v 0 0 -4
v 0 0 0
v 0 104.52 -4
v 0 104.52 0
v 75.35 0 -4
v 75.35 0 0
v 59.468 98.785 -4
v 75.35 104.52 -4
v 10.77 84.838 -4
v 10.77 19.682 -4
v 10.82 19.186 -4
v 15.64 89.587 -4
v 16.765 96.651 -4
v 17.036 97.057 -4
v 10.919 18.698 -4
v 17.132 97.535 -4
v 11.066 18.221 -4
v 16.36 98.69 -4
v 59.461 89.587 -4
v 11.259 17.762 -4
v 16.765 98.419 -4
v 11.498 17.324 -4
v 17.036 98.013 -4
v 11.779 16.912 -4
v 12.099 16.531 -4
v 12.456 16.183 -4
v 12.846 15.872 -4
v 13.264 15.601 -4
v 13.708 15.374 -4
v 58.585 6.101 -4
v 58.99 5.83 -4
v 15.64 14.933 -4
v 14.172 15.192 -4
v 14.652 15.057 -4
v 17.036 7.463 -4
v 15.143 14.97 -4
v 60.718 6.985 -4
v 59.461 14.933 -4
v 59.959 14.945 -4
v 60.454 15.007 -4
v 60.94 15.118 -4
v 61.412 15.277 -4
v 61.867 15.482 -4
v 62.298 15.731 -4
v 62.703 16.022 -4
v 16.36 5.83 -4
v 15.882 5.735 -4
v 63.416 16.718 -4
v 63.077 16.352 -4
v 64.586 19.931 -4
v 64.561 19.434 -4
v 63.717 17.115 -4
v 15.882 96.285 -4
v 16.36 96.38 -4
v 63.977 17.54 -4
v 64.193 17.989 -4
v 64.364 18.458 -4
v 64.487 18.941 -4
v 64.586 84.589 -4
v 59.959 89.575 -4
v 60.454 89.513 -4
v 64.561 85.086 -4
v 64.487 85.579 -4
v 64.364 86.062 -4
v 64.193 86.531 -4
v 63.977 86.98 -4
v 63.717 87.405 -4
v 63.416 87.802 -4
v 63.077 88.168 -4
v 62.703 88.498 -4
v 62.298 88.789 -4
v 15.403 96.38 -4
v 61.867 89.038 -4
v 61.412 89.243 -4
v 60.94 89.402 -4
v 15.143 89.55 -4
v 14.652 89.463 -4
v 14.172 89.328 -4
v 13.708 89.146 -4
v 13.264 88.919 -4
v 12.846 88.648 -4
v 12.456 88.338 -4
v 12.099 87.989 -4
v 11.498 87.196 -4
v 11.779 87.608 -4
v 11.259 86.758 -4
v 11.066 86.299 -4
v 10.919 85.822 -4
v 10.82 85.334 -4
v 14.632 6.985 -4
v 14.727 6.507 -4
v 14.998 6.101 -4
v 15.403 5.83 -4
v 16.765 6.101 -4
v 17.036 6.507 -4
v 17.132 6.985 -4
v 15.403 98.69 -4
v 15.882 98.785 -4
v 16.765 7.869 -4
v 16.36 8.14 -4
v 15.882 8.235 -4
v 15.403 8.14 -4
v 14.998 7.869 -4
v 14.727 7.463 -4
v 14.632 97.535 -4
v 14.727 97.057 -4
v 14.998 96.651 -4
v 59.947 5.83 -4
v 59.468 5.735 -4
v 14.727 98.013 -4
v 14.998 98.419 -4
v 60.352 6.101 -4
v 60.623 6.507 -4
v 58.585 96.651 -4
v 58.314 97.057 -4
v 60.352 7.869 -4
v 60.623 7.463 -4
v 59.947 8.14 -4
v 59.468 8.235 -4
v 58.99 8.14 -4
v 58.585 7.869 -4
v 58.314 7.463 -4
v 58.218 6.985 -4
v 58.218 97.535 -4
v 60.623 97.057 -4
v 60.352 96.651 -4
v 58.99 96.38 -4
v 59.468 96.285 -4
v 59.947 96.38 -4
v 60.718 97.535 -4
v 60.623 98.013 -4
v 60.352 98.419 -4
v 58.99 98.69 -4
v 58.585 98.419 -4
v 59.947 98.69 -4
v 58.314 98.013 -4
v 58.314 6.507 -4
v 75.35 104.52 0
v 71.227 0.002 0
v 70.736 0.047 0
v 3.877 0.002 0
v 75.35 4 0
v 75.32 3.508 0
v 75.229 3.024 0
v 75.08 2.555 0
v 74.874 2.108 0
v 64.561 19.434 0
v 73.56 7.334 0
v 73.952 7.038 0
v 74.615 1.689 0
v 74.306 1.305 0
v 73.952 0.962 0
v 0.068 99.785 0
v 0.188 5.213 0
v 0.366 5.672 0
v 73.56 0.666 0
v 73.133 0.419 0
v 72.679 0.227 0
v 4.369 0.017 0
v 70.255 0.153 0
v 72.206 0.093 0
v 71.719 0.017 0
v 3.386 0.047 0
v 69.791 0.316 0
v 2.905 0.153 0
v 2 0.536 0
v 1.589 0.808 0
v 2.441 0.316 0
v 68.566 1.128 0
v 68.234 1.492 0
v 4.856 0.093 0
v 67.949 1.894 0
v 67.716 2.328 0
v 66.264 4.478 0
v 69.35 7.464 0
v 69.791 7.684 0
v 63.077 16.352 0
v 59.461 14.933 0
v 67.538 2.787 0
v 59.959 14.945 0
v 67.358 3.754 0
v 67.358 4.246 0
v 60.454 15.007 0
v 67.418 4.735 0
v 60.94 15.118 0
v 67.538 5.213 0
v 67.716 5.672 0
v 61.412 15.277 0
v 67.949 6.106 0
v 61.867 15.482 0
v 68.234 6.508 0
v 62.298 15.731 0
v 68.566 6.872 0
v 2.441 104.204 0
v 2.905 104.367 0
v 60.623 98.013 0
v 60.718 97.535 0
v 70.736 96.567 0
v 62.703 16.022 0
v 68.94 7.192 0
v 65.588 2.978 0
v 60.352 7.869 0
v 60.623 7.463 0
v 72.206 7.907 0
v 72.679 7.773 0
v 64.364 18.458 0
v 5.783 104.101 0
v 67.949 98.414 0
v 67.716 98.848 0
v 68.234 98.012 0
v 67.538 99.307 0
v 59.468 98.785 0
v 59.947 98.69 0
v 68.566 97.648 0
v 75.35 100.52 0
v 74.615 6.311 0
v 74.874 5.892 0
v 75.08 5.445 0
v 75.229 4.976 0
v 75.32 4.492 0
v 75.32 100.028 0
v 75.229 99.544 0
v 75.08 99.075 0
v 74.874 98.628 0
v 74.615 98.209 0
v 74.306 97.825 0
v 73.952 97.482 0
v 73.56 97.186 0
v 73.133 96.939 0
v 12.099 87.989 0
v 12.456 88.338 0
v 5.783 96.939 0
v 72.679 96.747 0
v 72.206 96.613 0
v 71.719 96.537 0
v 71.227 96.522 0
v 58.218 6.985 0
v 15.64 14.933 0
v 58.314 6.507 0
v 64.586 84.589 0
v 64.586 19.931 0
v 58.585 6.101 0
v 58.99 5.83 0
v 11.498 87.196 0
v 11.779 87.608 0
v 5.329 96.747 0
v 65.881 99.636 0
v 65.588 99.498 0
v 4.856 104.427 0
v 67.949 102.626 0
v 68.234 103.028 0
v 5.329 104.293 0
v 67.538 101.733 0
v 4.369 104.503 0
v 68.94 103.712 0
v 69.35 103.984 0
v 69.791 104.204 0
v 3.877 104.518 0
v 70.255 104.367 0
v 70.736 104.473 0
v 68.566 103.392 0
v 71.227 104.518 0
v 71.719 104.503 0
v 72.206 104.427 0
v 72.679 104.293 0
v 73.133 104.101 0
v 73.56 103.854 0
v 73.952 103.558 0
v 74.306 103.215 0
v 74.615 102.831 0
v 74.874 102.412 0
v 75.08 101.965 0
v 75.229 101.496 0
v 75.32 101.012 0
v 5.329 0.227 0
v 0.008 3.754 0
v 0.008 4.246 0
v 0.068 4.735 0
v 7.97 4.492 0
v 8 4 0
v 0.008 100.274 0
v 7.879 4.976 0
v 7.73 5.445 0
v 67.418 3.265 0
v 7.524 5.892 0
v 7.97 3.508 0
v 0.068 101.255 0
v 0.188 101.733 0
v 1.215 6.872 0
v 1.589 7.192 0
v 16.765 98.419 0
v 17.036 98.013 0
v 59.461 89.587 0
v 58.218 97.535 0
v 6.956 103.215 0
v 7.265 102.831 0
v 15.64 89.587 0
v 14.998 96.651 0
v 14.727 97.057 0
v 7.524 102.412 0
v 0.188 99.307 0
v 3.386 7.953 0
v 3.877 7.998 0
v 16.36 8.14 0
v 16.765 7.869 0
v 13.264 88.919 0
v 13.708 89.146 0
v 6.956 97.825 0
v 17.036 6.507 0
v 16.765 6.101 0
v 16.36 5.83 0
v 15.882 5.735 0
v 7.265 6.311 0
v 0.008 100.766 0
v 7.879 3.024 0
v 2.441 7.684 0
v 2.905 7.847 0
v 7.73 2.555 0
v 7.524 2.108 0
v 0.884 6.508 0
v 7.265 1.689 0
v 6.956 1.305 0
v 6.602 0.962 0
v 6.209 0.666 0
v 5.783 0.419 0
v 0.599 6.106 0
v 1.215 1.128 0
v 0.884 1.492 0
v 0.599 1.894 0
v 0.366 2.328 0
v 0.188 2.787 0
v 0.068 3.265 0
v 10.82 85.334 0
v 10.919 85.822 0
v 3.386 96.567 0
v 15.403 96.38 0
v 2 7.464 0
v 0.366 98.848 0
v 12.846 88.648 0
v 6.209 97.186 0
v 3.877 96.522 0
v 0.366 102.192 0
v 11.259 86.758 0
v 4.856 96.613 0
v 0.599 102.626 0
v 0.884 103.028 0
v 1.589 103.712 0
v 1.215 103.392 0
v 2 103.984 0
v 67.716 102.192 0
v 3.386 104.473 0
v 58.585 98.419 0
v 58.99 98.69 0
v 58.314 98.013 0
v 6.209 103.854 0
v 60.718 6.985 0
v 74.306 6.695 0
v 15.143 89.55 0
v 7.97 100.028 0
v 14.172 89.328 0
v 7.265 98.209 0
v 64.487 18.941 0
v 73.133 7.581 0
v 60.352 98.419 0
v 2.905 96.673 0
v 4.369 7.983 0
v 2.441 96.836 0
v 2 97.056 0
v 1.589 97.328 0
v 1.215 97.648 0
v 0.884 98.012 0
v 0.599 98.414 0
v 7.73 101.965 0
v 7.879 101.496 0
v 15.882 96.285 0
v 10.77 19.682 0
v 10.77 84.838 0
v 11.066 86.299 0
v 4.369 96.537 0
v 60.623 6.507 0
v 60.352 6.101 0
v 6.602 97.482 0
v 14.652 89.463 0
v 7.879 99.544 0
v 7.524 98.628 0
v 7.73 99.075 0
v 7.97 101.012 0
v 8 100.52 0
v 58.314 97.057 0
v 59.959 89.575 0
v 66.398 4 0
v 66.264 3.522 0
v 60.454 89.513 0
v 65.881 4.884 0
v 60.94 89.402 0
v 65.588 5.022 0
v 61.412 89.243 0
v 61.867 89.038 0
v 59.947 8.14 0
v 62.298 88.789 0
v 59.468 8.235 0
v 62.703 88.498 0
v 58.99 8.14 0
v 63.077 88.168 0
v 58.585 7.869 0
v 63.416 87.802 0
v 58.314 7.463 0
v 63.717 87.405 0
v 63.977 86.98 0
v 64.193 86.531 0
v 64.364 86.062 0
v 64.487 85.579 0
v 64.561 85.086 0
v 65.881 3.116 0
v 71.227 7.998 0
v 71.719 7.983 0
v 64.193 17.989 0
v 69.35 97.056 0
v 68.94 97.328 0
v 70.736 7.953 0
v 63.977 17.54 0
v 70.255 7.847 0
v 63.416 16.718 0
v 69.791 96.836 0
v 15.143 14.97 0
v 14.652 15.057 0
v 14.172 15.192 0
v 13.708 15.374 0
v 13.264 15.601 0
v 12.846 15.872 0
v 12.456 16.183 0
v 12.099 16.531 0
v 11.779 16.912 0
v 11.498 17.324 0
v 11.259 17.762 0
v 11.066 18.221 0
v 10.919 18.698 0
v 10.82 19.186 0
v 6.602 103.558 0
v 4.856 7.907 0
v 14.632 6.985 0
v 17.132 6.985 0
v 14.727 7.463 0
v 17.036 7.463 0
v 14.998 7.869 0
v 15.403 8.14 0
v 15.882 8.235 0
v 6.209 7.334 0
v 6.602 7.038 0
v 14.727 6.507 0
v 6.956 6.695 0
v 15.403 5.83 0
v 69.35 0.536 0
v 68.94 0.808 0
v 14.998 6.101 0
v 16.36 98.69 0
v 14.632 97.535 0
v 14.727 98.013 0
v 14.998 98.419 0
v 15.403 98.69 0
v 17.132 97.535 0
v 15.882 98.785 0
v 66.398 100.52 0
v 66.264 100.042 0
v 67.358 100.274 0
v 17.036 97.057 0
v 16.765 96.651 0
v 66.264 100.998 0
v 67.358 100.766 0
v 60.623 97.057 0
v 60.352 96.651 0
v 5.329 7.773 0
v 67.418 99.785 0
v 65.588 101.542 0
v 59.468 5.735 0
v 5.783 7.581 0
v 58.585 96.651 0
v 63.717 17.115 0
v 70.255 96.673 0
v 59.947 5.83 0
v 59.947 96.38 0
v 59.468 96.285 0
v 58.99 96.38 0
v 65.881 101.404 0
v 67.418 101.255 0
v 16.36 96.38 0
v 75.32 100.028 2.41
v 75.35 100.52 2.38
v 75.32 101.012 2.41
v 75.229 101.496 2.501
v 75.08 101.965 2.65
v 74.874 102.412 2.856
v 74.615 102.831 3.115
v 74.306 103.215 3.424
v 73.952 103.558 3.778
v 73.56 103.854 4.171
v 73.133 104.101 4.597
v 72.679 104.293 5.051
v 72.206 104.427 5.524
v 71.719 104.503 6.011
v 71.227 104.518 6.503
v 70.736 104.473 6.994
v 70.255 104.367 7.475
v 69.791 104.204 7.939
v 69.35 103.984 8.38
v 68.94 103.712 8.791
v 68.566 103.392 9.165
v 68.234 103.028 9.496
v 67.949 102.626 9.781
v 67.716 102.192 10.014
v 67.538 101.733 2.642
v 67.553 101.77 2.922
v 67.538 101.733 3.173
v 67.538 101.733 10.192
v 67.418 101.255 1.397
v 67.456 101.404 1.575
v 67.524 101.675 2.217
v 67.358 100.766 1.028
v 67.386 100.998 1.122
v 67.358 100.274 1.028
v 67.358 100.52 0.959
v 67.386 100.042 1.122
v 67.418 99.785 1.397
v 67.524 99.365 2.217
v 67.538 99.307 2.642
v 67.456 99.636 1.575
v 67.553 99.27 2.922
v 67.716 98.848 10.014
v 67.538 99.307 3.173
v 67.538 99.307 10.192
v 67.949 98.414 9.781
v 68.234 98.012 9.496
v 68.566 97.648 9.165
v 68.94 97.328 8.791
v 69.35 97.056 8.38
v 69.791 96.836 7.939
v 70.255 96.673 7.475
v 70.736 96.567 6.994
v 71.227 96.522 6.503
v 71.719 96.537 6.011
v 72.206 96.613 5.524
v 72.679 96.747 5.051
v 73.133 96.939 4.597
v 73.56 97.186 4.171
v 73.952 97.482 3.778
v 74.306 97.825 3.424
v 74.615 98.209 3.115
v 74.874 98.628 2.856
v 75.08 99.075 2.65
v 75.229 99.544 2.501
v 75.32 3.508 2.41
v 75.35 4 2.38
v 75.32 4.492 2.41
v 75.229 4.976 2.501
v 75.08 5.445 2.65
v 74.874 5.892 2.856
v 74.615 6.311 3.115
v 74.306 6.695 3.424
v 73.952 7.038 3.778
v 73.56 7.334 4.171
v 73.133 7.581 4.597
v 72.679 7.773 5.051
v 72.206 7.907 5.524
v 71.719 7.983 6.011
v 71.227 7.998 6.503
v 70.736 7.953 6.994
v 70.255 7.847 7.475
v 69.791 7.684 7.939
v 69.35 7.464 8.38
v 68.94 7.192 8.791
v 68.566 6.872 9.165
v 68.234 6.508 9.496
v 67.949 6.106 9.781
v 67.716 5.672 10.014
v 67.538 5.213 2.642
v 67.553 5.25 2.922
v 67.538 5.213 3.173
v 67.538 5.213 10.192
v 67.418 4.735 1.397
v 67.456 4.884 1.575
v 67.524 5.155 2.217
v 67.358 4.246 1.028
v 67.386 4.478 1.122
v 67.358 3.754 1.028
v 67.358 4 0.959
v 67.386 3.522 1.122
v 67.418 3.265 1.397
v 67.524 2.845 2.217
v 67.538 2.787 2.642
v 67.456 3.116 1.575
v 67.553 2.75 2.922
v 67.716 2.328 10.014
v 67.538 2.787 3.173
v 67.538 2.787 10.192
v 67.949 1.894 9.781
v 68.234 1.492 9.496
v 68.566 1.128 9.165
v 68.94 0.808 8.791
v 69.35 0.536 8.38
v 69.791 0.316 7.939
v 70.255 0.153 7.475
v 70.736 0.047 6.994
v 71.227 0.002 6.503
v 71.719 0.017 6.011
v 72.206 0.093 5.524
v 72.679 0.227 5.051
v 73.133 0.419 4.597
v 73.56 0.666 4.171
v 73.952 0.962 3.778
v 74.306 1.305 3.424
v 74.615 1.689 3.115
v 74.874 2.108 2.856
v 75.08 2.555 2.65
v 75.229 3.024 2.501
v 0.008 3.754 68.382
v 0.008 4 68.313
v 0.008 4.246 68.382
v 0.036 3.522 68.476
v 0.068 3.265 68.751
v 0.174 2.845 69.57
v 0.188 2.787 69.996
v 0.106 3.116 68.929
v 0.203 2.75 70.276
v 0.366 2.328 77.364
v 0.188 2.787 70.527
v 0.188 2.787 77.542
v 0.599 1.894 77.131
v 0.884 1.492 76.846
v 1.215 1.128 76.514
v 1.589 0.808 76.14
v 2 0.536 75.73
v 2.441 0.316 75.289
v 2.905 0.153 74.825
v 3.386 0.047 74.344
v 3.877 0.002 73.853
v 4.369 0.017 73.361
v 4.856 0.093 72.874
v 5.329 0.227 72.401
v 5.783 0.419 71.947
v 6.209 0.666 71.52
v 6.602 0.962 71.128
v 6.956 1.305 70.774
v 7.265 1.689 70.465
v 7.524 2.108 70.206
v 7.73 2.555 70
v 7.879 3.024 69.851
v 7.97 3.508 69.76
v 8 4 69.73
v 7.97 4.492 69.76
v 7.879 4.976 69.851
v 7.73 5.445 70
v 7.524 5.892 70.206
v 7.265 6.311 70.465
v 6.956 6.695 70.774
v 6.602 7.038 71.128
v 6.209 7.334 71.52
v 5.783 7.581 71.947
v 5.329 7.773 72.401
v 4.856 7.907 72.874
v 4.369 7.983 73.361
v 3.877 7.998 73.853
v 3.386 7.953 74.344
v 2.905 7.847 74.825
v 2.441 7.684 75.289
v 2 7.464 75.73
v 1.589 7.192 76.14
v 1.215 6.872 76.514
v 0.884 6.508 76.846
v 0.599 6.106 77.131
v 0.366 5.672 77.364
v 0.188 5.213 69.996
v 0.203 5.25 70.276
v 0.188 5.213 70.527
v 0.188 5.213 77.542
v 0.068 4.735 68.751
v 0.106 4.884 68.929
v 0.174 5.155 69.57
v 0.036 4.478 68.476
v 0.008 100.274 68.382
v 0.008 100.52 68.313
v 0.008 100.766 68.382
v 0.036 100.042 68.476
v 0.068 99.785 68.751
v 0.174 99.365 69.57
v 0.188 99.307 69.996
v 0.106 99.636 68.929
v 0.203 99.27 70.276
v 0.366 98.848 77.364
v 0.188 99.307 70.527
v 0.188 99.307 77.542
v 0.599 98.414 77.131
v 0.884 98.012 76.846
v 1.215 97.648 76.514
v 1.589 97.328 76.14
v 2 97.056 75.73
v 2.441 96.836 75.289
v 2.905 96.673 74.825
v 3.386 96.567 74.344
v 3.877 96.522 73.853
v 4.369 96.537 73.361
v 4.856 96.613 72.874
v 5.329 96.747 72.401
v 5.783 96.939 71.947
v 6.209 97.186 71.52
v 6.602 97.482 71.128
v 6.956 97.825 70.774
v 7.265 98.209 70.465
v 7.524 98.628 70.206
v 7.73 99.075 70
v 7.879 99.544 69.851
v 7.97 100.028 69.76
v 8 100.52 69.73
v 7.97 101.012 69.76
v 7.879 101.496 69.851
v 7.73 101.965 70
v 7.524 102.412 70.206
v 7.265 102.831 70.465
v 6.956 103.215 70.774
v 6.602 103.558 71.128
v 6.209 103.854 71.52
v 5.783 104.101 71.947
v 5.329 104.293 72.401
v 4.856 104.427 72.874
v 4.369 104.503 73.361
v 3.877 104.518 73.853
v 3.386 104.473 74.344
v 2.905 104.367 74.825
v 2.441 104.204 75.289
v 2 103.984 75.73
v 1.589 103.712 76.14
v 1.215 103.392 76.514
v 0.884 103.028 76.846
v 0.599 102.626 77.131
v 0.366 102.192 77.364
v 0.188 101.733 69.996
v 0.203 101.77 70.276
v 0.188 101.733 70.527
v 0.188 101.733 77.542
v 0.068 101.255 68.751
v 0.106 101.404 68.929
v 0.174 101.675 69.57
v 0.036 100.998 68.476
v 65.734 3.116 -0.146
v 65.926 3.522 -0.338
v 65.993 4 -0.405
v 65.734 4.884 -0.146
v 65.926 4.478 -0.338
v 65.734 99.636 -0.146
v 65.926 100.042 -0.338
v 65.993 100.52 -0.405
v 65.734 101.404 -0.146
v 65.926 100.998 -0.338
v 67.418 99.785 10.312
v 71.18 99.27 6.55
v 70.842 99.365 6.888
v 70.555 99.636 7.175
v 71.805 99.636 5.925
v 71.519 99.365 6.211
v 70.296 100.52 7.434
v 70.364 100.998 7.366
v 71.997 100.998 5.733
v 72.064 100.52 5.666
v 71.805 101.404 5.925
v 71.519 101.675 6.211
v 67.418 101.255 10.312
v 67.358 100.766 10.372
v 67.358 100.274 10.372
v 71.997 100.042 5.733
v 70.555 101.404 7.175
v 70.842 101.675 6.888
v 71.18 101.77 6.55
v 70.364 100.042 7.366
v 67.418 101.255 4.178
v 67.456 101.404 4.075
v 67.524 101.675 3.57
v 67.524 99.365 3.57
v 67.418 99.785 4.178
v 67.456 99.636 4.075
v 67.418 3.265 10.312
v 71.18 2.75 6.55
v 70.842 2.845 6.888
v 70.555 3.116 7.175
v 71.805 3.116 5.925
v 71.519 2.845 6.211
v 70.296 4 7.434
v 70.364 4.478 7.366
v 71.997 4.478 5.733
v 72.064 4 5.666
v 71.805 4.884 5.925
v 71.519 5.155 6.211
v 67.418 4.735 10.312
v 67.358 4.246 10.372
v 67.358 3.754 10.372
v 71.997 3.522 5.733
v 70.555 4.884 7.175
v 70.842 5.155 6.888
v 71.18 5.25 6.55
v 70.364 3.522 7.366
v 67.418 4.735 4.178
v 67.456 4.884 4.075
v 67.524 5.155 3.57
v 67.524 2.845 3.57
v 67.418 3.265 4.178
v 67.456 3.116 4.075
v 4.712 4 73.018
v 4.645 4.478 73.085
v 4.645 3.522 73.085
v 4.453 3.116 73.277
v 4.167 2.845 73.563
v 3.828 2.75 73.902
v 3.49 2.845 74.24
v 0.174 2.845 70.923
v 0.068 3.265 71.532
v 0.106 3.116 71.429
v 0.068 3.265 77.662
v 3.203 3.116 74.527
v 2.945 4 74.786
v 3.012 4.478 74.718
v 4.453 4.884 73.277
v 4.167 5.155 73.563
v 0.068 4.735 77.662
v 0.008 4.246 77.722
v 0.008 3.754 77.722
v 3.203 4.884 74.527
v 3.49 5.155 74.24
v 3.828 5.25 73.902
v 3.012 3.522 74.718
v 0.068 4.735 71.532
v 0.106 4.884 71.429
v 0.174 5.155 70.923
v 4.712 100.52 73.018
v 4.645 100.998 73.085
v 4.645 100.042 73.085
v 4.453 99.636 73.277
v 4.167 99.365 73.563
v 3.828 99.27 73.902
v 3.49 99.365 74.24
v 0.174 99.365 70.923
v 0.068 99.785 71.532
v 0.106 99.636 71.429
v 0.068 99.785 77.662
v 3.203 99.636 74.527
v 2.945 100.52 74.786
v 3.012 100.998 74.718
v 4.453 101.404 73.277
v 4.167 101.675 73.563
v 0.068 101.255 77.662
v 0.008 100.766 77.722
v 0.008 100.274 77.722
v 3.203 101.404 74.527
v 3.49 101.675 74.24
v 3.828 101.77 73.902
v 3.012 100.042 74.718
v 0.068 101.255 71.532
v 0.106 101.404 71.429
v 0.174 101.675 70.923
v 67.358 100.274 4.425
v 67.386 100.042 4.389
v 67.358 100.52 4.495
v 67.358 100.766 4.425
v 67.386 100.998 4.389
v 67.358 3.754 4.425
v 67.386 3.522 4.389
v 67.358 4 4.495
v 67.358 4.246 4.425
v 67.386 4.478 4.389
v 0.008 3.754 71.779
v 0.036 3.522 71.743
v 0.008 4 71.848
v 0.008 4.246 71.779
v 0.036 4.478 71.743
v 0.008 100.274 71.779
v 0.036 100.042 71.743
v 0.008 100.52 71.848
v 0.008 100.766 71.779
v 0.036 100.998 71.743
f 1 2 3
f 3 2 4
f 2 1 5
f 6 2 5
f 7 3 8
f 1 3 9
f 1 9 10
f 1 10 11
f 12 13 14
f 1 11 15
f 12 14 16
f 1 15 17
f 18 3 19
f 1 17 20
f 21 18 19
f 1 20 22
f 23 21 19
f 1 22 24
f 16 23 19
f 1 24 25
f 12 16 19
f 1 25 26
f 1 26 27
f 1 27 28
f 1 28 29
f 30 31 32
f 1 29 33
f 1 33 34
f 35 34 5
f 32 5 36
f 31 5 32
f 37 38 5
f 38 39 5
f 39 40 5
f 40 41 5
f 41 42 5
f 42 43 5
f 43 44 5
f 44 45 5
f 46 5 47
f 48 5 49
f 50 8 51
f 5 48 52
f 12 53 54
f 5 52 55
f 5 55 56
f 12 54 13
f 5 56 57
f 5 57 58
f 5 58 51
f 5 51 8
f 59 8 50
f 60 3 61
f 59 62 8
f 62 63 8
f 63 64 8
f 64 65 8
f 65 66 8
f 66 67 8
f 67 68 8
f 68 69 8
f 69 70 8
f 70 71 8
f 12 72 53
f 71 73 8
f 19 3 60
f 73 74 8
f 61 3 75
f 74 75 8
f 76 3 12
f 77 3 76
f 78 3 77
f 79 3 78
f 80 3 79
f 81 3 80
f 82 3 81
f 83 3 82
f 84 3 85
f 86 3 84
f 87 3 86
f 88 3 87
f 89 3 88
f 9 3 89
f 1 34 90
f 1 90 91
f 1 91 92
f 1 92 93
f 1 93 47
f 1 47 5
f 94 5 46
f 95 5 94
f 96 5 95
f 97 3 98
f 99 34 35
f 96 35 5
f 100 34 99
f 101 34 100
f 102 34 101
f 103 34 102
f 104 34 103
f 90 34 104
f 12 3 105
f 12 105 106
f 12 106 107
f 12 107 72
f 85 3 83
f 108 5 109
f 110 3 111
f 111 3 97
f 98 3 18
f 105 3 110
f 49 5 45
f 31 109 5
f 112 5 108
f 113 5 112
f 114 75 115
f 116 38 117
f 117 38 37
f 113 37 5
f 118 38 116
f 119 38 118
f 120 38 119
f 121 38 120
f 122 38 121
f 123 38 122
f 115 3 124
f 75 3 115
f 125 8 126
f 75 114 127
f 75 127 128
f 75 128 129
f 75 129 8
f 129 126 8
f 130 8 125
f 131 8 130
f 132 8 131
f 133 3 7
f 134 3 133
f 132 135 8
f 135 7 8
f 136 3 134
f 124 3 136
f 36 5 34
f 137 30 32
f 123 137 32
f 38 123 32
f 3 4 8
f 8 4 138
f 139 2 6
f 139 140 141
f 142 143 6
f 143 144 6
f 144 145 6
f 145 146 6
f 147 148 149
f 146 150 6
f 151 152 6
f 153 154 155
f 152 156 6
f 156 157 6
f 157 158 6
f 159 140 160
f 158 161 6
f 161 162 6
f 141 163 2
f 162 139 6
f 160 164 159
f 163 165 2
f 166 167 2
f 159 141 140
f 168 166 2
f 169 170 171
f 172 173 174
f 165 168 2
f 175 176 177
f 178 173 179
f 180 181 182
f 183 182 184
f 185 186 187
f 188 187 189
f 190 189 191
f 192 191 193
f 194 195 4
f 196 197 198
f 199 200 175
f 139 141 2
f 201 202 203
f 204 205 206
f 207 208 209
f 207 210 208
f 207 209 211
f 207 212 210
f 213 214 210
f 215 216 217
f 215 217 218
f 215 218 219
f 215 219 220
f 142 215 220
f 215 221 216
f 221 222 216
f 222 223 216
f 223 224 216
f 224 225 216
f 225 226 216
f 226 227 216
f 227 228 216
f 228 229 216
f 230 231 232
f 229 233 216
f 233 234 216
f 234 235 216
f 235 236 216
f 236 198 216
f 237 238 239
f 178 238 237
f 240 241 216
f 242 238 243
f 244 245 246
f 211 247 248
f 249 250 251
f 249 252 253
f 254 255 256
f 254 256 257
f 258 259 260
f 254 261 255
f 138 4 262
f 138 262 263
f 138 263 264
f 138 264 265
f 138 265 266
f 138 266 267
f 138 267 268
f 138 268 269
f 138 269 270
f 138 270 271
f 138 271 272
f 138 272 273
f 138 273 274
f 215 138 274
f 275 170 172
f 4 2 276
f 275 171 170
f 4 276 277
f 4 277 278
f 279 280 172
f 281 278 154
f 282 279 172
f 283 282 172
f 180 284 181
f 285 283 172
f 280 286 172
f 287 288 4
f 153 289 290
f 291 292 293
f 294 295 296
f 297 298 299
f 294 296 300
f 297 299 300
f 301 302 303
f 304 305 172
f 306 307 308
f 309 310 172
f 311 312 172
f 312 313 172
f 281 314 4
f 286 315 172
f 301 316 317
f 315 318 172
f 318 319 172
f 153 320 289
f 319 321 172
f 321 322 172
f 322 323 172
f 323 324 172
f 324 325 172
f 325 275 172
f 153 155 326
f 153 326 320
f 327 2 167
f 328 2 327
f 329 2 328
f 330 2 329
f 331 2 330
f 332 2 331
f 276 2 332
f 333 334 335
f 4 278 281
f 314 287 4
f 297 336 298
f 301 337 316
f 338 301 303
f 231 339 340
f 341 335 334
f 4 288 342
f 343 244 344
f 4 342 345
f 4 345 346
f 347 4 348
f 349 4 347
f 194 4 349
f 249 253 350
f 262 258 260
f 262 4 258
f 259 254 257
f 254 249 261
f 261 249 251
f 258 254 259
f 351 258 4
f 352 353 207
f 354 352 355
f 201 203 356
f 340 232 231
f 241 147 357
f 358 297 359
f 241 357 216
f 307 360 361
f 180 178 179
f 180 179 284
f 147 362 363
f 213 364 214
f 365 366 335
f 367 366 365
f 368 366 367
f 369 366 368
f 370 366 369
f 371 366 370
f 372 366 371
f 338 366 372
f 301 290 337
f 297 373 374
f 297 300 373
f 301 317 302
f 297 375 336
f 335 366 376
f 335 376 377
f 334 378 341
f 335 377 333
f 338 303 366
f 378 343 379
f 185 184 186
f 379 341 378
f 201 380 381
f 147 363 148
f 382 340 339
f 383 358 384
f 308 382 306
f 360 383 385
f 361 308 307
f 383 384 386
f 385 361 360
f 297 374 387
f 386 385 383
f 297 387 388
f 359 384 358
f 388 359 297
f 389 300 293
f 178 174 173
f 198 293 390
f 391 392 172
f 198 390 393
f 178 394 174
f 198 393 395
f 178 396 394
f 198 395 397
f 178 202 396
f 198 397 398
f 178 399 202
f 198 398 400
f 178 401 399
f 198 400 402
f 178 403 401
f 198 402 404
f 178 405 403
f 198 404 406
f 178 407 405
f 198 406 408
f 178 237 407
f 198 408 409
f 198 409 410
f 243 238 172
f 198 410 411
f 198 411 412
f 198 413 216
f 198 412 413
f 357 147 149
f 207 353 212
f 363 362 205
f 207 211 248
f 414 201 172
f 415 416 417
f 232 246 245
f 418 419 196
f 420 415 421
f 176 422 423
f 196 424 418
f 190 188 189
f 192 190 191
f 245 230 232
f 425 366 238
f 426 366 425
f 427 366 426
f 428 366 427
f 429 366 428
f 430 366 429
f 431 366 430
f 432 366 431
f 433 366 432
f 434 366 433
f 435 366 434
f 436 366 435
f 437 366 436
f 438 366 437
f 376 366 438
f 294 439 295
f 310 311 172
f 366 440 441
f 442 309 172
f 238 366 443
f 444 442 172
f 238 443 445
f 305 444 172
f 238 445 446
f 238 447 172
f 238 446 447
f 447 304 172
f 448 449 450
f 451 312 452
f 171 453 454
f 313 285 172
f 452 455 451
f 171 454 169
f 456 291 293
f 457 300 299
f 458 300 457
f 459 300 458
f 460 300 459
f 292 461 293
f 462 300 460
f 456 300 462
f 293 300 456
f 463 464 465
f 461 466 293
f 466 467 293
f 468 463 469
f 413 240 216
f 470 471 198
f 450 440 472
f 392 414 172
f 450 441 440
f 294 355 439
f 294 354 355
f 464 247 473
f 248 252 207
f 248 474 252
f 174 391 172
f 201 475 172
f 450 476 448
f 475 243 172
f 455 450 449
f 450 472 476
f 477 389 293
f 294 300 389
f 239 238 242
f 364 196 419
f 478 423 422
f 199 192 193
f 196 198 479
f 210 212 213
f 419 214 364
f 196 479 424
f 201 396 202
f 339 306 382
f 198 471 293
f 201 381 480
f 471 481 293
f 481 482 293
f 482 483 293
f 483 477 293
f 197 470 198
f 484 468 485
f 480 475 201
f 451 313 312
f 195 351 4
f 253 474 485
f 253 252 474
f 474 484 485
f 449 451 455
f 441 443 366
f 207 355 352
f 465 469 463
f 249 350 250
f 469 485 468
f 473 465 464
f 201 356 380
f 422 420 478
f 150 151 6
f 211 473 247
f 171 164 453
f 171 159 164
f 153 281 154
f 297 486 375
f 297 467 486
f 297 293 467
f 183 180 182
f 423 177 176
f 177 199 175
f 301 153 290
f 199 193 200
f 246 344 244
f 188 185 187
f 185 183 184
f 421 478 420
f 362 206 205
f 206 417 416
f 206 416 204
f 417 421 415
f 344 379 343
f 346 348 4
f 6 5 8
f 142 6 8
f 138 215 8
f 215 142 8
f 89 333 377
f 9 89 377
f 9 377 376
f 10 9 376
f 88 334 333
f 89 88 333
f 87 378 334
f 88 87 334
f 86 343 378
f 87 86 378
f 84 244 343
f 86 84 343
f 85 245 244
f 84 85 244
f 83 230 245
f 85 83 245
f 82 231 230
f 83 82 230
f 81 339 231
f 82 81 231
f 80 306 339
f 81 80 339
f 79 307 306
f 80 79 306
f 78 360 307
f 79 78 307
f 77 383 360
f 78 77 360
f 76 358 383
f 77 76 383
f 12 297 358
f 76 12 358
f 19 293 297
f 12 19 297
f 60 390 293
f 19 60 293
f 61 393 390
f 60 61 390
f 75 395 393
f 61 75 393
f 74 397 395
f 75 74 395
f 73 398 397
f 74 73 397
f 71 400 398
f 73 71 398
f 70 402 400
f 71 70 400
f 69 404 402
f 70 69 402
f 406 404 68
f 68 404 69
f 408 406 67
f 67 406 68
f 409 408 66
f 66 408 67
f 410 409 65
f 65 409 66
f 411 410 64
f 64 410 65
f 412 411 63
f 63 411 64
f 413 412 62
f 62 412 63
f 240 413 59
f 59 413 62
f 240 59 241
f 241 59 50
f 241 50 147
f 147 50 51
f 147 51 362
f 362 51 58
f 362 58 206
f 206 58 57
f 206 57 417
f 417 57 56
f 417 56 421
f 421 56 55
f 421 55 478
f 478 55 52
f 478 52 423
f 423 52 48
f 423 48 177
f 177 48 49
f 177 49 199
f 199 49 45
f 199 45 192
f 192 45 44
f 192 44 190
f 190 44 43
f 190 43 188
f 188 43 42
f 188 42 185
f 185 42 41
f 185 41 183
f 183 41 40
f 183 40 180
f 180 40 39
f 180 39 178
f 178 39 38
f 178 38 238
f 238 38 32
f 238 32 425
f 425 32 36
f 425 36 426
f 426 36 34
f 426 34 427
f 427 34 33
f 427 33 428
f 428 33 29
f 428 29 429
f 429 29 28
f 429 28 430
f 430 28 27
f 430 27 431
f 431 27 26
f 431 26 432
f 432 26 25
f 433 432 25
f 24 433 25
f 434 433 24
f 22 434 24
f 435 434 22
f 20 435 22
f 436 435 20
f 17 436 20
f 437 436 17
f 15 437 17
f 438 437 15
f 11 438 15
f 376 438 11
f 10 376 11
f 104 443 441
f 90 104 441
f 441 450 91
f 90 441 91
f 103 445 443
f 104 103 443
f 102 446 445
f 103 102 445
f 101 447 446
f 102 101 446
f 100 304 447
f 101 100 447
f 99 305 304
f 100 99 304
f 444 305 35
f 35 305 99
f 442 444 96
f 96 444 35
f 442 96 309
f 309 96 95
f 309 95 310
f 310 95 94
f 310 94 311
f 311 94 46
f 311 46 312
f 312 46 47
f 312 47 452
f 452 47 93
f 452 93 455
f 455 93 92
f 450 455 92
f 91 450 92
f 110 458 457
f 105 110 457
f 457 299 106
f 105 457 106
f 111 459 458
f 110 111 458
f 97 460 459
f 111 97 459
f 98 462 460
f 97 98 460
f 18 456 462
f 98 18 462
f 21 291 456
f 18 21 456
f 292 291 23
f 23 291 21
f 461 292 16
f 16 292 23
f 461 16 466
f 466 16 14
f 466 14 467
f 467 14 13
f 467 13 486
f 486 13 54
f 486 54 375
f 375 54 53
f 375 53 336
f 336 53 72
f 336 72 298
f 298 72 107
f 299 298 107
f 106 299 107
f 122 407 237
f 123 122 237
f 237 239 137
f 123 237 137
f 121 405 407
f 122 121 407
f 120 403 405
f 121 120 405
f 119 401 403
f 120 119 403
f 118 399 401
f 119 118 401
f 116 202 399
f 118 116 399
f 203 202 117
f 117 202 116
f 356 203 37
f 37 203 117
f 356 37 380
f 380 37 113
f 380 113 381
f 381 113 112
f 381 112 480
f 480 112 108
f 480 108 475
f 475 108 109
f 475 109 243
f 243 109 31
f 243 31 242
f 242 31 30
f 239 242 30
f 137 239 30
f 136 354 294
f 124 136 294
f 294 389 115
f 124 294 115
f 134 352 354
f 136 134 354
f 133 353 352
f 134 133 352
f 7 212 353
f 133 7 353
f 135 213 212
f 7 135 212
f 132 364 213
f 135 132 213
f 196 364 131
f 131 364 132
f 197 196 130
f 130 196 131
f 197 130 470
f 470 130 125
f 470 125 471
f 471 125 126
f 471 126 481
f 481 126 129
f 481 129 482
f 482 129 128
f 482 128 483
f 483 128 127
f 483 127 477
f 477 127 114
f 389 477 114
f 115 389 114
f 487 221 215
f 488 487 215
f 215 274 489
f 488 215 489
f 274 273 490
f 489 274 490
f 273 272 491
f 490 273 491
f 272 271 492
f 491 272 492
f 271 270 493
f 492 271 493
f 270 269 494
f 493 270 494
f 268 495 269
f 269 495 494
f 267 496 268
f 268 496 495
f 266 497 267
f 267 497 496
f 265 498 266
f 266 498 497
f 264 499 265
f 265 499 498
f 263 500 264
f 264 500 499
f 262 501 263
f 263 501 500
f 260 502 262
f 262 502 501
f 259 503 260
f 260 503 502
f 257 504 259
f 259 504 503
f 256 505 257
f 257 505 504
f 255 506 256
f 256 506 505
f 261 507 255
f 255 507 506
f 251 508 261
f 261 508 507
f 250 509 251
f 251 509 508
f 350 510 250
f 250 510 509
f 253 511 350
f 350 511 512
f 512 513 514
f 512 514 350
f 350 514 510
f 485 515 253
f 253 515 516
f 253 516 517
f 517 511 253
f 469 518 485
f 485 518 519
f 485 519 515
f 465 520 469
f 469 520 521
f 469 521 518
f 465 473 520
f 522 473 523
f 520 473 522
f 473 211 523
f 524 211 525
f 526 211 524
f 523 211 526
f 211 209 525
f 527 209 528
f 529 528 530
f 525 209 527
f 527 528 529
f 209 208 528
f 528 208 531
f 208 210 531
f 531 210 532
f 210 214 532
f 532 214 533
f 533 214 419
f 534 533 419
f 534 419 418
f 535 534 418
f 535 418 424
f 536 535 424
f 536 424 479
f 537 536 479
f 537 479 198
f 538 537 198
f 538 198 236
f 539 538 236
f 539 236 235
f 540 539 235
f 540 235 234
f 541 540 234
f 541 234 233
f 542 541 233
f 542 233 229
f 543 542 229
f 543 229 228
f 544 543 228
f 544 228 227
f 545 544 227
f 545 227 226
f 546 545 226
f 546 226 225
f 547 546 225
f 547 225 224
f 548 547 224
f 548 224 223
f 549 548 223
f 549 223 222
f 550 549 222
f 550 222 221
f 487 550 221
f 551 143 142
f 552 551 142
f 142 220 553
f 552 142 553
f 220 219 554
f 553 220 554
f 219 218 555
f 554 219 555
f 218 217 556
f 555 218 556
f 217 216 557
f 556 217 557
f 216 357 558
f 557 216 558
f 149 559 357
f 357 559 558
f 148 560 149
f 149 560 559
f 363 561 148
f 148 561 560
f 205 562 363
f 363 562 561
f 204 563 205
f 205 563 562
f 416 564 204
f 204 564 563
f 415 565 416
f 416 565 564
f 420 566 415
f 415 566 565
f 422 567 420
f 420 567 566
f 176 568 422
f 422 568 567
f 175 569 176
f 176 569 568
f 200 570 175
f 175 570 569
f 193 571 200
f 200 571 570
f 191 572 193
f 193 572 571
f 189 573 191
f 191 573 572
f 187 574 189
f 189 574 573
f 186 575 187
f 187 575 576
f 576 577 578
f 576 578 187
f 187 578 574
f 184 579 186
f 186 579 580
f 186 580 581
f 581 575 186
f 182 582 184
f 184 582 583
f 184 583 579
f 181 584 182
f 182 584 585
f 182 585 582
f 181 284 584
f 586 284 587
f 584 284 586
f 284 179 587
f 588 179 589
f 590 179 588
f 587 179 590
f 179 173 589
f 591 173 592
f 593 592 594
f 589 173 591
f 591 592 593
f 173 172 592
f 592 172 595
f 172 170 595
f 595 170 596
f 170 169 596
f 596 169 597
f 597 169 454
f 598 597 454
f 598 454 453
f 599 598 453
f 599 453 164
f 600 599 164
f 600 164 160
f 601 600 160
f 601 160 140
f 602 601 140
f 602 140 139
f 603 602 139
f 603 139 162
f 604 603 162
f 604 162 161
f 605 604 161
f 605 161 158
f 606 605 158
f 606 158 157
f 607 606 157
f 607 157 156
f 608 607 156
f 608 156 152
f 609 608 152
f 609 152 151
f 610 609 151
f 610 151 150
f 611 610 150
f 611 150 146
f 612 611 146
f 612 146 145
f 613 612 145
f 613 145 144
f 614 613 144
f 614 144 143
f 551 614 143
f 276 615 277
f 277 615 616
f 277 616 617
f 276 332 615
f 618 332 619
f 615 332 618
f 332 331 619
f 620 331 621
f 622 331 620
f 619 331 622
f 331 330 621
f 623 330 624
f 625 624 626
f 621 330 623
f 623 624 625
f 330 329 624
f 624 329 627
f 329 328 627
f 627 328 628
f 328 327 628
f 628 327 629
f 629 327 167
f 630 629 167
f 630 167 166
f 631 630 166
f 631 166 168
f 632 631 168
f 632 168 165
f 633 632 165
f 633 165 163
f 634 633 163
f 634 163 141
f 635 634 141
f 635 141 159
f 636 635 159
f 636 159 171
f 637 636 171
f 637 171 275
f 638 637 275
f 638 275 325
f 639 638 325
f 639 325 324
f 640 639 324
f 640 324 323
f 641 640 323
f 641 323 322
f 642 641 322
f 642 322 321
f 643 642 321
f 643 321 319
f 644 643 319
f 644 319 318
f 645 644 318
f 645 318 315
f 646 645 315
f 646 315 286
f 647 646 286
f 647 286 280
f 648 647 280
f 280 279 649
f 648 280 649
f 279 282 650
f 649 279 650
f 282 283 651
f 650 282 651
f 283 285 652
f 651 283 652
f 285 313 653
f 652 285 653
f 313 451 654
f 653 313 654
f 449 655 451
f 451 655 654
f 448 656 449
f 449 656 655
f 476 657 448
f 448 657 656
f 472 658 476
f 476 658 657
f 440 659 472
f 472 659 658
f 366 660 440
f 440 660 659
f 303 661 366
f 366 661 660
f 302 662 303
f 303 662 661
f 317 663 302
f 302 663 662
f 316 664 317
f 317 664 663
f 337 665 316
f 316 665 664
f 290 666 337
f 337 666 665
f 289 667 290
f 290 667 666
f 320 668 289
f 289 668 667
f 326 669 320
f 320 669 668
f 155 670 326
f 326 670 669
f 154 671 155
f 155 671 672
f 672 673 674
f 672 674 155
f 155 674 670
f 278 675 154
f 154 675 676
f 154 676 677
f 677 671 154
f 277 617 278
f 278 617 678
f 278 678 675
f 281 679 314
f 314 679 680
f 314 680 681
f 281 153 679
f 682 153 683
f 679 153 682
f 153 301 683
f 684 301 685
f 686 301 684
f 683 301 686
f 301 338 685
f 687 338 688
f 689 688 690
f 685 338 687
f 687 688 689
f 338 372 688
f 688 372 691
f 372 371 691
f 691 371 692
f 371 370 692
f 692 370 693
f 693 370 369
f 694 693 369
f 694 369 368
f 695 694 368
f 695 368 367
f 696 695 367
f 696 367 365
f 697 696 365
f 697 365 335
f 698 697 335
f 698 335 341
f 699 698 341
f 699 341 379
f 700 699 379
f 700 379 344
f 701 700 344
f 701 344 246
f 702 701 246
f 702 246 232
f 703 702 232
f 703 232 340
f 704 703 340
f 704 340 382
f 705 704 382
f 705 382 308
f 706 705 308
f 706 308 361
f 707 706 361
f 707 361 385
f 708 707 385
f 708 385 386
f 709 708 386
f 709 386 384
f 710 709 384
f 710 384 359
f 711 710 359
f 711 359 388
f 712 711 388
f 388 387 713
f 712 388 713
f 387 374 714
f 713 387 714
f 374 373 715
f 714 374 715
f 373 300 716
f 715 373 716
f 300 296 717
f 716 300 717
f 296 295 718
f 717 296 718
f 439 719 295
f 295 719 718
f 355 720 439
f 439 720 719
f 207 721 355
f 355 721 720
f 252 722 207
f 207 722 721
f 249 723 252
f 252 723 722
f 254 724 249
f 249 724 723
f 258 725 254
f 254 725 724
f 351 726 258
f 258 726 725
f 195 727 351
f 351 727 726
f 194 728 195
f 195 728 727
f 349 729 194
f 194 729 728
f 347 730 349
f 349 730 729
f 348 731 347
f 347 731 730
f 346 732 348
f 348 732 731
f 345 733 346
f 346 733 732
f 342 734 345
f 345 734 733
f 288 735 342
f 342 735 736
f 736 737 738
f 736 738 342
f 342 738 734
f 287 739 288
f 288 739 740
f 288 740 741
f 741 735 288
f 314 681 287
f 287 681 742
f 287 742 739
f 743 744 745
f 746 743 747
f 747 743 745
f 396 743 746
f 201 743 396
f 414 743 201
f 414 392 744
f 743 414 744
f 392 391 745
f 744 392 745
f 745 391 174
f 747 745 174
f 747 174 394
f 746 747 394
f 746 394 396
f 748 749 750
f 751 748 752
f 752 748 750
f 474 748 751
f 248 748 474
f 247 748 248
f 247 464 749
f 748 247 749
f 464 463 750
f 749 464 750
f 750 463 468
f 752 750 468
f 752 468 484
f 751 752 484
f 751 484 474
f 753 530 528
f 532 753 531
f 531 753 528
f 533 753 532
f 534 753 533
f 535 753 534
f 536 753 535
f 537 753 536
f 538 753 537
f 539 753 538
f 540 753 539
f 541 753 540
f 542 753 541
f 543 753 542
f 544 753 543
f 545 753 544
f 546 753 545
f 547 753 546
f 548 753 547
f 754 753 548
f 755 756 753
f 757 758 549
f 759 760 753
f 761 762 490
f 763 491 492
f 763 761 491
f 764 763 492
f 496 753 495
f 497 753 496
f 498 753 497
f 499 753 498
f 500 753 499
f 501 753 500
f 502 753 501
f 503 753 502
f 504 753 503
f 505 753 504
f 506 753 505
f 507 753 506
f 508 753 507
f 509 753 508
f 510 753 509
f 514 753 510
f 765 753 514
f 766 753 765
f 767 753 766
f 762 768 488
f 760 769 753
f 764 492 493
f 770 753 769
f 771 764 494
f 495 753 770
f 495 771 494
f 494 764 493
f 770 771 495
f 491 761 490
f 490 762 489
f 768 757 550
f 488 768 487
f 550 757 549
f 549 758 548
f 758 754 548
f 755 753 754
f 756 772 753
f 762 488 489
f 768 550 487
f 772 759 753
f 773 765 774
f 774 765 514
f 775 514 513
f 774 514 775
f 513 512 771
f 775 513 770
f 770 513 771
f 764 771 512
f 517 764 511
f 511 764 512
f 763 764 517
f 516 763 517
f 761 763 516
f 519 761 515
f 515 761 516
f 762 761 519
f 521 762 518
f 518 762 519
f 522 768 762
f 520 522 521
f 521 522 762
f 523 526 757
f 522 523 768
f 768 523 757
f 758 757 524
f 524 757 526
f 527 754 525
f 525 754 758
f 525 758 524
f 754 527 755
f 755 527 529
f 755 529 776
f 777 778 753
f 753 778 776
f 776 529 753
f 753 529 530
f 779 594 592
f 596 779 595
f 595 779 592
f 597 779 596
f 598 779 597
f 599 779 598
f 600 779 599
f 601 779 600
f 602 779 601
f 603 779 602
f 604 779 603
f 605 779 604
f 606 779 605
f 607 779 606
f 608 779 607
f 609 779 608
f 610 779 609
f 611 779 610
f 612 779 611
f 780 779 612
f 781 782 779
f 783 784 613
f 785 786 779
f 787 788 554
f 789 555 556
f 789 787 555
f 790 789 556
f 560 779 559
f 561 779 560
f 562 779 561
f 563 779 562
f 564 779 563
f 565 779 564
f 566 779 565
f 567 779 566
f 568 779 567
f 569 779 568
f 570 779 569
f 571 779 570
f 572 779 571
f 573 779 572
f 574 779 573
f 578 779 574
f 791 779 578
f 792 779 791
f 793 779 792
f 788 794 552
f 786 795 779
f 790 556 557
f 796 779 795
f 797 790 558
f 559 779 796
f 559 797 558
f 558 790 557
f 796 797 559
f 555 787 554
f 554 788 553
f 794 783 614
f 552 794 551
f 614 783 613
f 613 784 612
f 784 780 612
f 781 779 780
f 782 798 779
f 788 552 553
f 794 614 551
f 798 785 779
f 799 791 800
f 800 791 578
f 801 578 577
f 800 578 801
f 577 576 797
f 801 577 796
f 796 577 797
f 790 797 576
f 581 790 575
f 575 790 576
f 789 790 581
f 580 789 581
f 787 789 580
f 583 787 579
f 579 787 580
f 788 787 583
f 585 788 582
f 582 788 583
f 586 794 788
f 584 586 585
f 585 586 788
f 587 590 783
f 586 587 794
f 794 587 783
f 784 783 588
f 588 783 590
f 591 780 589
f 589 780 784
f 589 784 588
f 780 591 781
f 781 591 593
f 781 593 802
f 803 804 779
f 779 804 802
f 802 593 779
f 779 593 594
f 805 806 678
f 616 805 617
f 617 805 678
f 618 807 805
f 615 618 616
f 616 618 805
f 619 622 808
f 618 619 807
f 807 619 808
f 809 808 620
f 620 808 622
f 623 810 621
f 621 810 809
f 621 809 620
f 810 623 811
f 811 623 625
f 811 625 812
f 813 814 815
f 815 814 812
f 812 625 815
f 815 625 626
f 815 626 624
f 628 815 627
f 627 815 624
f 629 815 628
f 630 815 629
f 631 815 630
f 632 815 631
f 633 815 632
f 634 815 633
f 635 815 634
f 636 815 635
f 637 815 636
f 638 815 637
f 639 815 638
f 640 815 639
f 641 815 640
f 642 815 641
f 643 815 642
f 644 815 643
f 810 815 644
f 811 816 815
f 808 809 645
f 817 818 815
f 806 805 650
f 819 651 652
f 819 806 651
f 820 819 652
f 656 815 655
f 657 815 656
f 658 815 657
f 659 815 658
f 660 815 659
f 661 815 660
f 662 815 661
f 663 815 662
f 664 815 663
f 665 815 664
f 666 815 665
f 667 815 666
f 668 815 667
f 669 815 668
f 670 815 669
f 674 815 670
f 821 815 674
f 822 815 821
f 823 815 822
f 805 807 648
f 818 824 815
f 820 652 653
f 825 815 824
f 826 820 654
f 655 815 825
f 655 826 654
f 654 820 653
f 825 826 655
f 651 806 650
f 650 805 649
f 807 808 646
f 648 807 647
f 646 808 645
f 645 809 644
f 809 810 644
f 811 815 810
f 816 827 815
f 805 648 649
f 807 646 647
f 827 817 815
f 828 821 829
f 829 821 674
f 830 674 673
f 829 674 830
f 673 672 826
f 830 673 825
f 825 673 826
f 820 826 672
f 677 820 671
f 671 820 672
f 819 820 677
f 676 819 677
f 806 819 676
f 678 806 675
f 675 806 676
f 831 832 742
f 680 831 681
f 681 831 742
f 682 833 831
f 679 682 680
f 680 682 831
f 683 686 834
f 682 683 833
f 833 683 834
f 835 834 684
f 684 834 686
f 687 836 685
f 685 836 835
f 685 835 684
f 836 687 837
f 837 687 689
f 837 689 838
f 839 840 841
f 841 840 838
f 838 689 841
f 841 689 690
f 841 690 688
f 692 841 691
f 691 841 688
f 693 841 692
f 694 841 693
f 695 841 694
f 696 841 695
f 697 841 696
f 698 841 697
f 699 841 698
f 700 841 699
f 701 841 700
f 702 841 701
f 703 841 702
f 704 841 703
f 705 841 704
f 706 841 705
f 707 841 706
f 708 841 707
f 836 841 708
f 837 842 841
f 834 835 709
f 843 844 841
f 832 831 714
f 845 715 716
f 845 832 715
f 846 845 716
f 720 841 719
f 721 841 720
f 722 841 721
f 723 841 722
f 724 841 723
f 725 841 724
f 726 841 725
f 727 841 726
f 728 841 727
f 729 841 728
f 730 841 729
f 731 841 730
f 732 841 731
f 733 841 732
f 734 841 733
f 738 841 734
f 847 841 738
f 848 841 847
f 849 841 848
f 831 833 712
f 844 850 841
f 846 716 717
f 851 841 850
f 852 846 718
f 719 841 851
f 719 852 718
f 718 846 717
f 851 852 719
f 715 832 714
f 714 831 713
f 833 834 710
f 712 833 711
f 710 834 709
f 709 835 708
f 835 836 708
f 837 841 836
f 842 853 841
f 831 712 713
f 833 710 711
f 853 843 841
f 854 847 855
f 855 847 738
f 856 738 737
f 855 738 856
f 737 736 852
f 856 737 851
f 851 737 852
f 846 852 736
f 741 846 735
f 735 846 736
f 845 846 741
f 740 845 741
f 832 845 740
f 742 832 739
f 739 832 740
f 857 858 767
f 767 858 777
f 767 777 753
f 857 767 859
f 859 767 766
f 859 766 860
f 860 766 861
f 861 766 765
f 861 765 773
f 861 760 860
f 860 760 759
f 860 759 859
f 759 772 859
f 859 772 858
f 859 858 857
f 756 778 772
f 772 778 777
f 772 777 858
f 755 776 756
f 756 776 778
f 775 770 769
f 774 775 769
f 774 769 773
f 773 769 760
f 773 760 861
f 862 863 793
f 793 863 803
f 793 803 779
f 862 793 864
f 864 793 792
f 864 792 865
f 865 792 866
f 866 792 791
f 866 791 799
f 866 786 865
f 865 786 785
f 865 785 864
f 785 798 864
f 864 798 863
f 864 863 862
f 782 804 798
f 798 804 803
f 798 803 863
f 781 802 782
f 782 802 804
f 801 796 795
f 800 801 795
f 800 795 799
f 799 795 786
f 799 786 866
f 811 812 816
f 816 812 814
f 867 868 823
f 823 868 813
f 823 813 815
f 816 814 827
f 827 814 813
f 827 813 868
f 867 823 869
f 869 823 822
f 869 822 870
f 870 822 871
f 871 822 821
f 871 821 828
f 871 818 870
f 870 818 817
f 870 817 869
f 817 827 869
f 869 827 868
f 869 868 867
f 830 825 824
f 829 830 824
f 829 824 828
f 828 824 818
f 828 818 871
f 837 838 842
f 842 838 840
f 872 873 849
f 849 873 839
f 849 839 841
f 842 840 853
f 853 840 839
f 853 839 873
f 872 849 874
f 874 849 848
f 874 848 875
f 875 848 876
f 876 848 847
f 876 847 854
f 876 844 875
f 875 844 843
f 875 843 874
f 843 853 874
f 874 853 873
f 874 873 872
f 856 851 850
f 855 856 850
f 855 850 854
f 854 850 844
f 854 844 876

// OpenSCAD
base_width = 75.35;
base_length = 104.52;


x_post_offset = (base_width-67.35)/2;
y_post_offset = (base_length-96.52)/2;

x_hole_offset = (base_width-43.587)/2;
y_hole_offset = (base_length-90.55)/2;

post_height = 77.73;

hole_d = 2.5; 
hole_h = 10;

res = .5;
$fa = res;
$fs = res;

cutout_factor = 1.4;
offset_factor = (1-1/cutout_factor);
x_cutout_offset = base_width*(1-1/cutout_factor)/2;
y_cutout_offset = base_length*(1-1/cutout_factor)/2;
cutout_corner_rad = 5;

difference() {
  union() {
      difference(){
        translate([0,0,-4]) cube([base_width, base_length, 4]);
	    union(){
    	      translate([x_hole_offset,y_hole_offset, -hole_h/2]) cylinder(h=hole_h,r=hole_d/2, $fa = res, $fs = res);
	      translate([x_hole_offset+43.587,y_hole_offset, -hole_h/2]) cylinder(h=hole_h,r=hole_d/2, $fa = res, $fs = res);
	      translate([x_hole_offset+43.587,y_hole_offset+90.55, -hole_h/2]) cylinder(h=hole_h,r=hole_d/2, $fa = res, $fs = res);
	      translate([x_hole_offset,y_hole_offset+90.55, -hole_h/2]) cylinder(h=hole_h,r=hole_d/2, $fa = res, $fs = res);
          translate([x_cutout_offset,y_cutout_offset,-5]) {
            minkowski() {
			  translate([cutout_corner_rad,cutout_corner_rad,0])cube([(base_width/cutout_factor)-2*cutout_corner_rad, (base_length/cutout_factor)-2*cutout_corner_rad, 10]);
			  cylinder(r=cutout_corner_rad,h=10, $fa = res, $fs = res);
            }
          }  

	    }	
      }
      

      translate([x_post_offset,y_post_offset, 0]) cylinder(h=post_height,r=4, $fa = res, $fs = res);
      translate([x_post_offset+67.35,y_post_offset, 0]) cylinder(h=post_height,r=4, $fa = res, $fs = res);
      translate([x_post_offset+67.35,y_post_offset+96.52, 0]) cylinder(h=post_height,r=4, $fa = res, $fs = res);
      translate([x_post_offset,y_post_offset+96.52, 0]) cylinder(h=post_height,r=4, $fa = res, $fs = res);
  }
  union(){
	  translate([0,0,post_height]) rotate(45, [0,post_height,0]) cube(200);
	  translate([2,0,post_height]) rotate([0,45,0]){
	    union() {
	      translate([x_post_offset,y_post_offset, -hole_h]) cylinder(h=hole_h,r=hole_d/2, $fa = res, $fs = res);
	      translate([x_post_offset+95.25,y_post_offset, -hole_h]) cylinder(h=hole_h,r=hole_d/2, $fa = res, $fs = res);
	      translate([x_post_offset+95.25,y_post_offset+96.52, -hole_h]) cylinder(h=hole_h,r=hole_d/2, $fa = res, $fs = res);
	      translate([x_post_offset,y_post_offset+96.52, -hole_h]) cylinder(h=hole_h,r=hole_d/2, $fa = res, $fs = res);
	    }
	  } 
  }
}

		 
